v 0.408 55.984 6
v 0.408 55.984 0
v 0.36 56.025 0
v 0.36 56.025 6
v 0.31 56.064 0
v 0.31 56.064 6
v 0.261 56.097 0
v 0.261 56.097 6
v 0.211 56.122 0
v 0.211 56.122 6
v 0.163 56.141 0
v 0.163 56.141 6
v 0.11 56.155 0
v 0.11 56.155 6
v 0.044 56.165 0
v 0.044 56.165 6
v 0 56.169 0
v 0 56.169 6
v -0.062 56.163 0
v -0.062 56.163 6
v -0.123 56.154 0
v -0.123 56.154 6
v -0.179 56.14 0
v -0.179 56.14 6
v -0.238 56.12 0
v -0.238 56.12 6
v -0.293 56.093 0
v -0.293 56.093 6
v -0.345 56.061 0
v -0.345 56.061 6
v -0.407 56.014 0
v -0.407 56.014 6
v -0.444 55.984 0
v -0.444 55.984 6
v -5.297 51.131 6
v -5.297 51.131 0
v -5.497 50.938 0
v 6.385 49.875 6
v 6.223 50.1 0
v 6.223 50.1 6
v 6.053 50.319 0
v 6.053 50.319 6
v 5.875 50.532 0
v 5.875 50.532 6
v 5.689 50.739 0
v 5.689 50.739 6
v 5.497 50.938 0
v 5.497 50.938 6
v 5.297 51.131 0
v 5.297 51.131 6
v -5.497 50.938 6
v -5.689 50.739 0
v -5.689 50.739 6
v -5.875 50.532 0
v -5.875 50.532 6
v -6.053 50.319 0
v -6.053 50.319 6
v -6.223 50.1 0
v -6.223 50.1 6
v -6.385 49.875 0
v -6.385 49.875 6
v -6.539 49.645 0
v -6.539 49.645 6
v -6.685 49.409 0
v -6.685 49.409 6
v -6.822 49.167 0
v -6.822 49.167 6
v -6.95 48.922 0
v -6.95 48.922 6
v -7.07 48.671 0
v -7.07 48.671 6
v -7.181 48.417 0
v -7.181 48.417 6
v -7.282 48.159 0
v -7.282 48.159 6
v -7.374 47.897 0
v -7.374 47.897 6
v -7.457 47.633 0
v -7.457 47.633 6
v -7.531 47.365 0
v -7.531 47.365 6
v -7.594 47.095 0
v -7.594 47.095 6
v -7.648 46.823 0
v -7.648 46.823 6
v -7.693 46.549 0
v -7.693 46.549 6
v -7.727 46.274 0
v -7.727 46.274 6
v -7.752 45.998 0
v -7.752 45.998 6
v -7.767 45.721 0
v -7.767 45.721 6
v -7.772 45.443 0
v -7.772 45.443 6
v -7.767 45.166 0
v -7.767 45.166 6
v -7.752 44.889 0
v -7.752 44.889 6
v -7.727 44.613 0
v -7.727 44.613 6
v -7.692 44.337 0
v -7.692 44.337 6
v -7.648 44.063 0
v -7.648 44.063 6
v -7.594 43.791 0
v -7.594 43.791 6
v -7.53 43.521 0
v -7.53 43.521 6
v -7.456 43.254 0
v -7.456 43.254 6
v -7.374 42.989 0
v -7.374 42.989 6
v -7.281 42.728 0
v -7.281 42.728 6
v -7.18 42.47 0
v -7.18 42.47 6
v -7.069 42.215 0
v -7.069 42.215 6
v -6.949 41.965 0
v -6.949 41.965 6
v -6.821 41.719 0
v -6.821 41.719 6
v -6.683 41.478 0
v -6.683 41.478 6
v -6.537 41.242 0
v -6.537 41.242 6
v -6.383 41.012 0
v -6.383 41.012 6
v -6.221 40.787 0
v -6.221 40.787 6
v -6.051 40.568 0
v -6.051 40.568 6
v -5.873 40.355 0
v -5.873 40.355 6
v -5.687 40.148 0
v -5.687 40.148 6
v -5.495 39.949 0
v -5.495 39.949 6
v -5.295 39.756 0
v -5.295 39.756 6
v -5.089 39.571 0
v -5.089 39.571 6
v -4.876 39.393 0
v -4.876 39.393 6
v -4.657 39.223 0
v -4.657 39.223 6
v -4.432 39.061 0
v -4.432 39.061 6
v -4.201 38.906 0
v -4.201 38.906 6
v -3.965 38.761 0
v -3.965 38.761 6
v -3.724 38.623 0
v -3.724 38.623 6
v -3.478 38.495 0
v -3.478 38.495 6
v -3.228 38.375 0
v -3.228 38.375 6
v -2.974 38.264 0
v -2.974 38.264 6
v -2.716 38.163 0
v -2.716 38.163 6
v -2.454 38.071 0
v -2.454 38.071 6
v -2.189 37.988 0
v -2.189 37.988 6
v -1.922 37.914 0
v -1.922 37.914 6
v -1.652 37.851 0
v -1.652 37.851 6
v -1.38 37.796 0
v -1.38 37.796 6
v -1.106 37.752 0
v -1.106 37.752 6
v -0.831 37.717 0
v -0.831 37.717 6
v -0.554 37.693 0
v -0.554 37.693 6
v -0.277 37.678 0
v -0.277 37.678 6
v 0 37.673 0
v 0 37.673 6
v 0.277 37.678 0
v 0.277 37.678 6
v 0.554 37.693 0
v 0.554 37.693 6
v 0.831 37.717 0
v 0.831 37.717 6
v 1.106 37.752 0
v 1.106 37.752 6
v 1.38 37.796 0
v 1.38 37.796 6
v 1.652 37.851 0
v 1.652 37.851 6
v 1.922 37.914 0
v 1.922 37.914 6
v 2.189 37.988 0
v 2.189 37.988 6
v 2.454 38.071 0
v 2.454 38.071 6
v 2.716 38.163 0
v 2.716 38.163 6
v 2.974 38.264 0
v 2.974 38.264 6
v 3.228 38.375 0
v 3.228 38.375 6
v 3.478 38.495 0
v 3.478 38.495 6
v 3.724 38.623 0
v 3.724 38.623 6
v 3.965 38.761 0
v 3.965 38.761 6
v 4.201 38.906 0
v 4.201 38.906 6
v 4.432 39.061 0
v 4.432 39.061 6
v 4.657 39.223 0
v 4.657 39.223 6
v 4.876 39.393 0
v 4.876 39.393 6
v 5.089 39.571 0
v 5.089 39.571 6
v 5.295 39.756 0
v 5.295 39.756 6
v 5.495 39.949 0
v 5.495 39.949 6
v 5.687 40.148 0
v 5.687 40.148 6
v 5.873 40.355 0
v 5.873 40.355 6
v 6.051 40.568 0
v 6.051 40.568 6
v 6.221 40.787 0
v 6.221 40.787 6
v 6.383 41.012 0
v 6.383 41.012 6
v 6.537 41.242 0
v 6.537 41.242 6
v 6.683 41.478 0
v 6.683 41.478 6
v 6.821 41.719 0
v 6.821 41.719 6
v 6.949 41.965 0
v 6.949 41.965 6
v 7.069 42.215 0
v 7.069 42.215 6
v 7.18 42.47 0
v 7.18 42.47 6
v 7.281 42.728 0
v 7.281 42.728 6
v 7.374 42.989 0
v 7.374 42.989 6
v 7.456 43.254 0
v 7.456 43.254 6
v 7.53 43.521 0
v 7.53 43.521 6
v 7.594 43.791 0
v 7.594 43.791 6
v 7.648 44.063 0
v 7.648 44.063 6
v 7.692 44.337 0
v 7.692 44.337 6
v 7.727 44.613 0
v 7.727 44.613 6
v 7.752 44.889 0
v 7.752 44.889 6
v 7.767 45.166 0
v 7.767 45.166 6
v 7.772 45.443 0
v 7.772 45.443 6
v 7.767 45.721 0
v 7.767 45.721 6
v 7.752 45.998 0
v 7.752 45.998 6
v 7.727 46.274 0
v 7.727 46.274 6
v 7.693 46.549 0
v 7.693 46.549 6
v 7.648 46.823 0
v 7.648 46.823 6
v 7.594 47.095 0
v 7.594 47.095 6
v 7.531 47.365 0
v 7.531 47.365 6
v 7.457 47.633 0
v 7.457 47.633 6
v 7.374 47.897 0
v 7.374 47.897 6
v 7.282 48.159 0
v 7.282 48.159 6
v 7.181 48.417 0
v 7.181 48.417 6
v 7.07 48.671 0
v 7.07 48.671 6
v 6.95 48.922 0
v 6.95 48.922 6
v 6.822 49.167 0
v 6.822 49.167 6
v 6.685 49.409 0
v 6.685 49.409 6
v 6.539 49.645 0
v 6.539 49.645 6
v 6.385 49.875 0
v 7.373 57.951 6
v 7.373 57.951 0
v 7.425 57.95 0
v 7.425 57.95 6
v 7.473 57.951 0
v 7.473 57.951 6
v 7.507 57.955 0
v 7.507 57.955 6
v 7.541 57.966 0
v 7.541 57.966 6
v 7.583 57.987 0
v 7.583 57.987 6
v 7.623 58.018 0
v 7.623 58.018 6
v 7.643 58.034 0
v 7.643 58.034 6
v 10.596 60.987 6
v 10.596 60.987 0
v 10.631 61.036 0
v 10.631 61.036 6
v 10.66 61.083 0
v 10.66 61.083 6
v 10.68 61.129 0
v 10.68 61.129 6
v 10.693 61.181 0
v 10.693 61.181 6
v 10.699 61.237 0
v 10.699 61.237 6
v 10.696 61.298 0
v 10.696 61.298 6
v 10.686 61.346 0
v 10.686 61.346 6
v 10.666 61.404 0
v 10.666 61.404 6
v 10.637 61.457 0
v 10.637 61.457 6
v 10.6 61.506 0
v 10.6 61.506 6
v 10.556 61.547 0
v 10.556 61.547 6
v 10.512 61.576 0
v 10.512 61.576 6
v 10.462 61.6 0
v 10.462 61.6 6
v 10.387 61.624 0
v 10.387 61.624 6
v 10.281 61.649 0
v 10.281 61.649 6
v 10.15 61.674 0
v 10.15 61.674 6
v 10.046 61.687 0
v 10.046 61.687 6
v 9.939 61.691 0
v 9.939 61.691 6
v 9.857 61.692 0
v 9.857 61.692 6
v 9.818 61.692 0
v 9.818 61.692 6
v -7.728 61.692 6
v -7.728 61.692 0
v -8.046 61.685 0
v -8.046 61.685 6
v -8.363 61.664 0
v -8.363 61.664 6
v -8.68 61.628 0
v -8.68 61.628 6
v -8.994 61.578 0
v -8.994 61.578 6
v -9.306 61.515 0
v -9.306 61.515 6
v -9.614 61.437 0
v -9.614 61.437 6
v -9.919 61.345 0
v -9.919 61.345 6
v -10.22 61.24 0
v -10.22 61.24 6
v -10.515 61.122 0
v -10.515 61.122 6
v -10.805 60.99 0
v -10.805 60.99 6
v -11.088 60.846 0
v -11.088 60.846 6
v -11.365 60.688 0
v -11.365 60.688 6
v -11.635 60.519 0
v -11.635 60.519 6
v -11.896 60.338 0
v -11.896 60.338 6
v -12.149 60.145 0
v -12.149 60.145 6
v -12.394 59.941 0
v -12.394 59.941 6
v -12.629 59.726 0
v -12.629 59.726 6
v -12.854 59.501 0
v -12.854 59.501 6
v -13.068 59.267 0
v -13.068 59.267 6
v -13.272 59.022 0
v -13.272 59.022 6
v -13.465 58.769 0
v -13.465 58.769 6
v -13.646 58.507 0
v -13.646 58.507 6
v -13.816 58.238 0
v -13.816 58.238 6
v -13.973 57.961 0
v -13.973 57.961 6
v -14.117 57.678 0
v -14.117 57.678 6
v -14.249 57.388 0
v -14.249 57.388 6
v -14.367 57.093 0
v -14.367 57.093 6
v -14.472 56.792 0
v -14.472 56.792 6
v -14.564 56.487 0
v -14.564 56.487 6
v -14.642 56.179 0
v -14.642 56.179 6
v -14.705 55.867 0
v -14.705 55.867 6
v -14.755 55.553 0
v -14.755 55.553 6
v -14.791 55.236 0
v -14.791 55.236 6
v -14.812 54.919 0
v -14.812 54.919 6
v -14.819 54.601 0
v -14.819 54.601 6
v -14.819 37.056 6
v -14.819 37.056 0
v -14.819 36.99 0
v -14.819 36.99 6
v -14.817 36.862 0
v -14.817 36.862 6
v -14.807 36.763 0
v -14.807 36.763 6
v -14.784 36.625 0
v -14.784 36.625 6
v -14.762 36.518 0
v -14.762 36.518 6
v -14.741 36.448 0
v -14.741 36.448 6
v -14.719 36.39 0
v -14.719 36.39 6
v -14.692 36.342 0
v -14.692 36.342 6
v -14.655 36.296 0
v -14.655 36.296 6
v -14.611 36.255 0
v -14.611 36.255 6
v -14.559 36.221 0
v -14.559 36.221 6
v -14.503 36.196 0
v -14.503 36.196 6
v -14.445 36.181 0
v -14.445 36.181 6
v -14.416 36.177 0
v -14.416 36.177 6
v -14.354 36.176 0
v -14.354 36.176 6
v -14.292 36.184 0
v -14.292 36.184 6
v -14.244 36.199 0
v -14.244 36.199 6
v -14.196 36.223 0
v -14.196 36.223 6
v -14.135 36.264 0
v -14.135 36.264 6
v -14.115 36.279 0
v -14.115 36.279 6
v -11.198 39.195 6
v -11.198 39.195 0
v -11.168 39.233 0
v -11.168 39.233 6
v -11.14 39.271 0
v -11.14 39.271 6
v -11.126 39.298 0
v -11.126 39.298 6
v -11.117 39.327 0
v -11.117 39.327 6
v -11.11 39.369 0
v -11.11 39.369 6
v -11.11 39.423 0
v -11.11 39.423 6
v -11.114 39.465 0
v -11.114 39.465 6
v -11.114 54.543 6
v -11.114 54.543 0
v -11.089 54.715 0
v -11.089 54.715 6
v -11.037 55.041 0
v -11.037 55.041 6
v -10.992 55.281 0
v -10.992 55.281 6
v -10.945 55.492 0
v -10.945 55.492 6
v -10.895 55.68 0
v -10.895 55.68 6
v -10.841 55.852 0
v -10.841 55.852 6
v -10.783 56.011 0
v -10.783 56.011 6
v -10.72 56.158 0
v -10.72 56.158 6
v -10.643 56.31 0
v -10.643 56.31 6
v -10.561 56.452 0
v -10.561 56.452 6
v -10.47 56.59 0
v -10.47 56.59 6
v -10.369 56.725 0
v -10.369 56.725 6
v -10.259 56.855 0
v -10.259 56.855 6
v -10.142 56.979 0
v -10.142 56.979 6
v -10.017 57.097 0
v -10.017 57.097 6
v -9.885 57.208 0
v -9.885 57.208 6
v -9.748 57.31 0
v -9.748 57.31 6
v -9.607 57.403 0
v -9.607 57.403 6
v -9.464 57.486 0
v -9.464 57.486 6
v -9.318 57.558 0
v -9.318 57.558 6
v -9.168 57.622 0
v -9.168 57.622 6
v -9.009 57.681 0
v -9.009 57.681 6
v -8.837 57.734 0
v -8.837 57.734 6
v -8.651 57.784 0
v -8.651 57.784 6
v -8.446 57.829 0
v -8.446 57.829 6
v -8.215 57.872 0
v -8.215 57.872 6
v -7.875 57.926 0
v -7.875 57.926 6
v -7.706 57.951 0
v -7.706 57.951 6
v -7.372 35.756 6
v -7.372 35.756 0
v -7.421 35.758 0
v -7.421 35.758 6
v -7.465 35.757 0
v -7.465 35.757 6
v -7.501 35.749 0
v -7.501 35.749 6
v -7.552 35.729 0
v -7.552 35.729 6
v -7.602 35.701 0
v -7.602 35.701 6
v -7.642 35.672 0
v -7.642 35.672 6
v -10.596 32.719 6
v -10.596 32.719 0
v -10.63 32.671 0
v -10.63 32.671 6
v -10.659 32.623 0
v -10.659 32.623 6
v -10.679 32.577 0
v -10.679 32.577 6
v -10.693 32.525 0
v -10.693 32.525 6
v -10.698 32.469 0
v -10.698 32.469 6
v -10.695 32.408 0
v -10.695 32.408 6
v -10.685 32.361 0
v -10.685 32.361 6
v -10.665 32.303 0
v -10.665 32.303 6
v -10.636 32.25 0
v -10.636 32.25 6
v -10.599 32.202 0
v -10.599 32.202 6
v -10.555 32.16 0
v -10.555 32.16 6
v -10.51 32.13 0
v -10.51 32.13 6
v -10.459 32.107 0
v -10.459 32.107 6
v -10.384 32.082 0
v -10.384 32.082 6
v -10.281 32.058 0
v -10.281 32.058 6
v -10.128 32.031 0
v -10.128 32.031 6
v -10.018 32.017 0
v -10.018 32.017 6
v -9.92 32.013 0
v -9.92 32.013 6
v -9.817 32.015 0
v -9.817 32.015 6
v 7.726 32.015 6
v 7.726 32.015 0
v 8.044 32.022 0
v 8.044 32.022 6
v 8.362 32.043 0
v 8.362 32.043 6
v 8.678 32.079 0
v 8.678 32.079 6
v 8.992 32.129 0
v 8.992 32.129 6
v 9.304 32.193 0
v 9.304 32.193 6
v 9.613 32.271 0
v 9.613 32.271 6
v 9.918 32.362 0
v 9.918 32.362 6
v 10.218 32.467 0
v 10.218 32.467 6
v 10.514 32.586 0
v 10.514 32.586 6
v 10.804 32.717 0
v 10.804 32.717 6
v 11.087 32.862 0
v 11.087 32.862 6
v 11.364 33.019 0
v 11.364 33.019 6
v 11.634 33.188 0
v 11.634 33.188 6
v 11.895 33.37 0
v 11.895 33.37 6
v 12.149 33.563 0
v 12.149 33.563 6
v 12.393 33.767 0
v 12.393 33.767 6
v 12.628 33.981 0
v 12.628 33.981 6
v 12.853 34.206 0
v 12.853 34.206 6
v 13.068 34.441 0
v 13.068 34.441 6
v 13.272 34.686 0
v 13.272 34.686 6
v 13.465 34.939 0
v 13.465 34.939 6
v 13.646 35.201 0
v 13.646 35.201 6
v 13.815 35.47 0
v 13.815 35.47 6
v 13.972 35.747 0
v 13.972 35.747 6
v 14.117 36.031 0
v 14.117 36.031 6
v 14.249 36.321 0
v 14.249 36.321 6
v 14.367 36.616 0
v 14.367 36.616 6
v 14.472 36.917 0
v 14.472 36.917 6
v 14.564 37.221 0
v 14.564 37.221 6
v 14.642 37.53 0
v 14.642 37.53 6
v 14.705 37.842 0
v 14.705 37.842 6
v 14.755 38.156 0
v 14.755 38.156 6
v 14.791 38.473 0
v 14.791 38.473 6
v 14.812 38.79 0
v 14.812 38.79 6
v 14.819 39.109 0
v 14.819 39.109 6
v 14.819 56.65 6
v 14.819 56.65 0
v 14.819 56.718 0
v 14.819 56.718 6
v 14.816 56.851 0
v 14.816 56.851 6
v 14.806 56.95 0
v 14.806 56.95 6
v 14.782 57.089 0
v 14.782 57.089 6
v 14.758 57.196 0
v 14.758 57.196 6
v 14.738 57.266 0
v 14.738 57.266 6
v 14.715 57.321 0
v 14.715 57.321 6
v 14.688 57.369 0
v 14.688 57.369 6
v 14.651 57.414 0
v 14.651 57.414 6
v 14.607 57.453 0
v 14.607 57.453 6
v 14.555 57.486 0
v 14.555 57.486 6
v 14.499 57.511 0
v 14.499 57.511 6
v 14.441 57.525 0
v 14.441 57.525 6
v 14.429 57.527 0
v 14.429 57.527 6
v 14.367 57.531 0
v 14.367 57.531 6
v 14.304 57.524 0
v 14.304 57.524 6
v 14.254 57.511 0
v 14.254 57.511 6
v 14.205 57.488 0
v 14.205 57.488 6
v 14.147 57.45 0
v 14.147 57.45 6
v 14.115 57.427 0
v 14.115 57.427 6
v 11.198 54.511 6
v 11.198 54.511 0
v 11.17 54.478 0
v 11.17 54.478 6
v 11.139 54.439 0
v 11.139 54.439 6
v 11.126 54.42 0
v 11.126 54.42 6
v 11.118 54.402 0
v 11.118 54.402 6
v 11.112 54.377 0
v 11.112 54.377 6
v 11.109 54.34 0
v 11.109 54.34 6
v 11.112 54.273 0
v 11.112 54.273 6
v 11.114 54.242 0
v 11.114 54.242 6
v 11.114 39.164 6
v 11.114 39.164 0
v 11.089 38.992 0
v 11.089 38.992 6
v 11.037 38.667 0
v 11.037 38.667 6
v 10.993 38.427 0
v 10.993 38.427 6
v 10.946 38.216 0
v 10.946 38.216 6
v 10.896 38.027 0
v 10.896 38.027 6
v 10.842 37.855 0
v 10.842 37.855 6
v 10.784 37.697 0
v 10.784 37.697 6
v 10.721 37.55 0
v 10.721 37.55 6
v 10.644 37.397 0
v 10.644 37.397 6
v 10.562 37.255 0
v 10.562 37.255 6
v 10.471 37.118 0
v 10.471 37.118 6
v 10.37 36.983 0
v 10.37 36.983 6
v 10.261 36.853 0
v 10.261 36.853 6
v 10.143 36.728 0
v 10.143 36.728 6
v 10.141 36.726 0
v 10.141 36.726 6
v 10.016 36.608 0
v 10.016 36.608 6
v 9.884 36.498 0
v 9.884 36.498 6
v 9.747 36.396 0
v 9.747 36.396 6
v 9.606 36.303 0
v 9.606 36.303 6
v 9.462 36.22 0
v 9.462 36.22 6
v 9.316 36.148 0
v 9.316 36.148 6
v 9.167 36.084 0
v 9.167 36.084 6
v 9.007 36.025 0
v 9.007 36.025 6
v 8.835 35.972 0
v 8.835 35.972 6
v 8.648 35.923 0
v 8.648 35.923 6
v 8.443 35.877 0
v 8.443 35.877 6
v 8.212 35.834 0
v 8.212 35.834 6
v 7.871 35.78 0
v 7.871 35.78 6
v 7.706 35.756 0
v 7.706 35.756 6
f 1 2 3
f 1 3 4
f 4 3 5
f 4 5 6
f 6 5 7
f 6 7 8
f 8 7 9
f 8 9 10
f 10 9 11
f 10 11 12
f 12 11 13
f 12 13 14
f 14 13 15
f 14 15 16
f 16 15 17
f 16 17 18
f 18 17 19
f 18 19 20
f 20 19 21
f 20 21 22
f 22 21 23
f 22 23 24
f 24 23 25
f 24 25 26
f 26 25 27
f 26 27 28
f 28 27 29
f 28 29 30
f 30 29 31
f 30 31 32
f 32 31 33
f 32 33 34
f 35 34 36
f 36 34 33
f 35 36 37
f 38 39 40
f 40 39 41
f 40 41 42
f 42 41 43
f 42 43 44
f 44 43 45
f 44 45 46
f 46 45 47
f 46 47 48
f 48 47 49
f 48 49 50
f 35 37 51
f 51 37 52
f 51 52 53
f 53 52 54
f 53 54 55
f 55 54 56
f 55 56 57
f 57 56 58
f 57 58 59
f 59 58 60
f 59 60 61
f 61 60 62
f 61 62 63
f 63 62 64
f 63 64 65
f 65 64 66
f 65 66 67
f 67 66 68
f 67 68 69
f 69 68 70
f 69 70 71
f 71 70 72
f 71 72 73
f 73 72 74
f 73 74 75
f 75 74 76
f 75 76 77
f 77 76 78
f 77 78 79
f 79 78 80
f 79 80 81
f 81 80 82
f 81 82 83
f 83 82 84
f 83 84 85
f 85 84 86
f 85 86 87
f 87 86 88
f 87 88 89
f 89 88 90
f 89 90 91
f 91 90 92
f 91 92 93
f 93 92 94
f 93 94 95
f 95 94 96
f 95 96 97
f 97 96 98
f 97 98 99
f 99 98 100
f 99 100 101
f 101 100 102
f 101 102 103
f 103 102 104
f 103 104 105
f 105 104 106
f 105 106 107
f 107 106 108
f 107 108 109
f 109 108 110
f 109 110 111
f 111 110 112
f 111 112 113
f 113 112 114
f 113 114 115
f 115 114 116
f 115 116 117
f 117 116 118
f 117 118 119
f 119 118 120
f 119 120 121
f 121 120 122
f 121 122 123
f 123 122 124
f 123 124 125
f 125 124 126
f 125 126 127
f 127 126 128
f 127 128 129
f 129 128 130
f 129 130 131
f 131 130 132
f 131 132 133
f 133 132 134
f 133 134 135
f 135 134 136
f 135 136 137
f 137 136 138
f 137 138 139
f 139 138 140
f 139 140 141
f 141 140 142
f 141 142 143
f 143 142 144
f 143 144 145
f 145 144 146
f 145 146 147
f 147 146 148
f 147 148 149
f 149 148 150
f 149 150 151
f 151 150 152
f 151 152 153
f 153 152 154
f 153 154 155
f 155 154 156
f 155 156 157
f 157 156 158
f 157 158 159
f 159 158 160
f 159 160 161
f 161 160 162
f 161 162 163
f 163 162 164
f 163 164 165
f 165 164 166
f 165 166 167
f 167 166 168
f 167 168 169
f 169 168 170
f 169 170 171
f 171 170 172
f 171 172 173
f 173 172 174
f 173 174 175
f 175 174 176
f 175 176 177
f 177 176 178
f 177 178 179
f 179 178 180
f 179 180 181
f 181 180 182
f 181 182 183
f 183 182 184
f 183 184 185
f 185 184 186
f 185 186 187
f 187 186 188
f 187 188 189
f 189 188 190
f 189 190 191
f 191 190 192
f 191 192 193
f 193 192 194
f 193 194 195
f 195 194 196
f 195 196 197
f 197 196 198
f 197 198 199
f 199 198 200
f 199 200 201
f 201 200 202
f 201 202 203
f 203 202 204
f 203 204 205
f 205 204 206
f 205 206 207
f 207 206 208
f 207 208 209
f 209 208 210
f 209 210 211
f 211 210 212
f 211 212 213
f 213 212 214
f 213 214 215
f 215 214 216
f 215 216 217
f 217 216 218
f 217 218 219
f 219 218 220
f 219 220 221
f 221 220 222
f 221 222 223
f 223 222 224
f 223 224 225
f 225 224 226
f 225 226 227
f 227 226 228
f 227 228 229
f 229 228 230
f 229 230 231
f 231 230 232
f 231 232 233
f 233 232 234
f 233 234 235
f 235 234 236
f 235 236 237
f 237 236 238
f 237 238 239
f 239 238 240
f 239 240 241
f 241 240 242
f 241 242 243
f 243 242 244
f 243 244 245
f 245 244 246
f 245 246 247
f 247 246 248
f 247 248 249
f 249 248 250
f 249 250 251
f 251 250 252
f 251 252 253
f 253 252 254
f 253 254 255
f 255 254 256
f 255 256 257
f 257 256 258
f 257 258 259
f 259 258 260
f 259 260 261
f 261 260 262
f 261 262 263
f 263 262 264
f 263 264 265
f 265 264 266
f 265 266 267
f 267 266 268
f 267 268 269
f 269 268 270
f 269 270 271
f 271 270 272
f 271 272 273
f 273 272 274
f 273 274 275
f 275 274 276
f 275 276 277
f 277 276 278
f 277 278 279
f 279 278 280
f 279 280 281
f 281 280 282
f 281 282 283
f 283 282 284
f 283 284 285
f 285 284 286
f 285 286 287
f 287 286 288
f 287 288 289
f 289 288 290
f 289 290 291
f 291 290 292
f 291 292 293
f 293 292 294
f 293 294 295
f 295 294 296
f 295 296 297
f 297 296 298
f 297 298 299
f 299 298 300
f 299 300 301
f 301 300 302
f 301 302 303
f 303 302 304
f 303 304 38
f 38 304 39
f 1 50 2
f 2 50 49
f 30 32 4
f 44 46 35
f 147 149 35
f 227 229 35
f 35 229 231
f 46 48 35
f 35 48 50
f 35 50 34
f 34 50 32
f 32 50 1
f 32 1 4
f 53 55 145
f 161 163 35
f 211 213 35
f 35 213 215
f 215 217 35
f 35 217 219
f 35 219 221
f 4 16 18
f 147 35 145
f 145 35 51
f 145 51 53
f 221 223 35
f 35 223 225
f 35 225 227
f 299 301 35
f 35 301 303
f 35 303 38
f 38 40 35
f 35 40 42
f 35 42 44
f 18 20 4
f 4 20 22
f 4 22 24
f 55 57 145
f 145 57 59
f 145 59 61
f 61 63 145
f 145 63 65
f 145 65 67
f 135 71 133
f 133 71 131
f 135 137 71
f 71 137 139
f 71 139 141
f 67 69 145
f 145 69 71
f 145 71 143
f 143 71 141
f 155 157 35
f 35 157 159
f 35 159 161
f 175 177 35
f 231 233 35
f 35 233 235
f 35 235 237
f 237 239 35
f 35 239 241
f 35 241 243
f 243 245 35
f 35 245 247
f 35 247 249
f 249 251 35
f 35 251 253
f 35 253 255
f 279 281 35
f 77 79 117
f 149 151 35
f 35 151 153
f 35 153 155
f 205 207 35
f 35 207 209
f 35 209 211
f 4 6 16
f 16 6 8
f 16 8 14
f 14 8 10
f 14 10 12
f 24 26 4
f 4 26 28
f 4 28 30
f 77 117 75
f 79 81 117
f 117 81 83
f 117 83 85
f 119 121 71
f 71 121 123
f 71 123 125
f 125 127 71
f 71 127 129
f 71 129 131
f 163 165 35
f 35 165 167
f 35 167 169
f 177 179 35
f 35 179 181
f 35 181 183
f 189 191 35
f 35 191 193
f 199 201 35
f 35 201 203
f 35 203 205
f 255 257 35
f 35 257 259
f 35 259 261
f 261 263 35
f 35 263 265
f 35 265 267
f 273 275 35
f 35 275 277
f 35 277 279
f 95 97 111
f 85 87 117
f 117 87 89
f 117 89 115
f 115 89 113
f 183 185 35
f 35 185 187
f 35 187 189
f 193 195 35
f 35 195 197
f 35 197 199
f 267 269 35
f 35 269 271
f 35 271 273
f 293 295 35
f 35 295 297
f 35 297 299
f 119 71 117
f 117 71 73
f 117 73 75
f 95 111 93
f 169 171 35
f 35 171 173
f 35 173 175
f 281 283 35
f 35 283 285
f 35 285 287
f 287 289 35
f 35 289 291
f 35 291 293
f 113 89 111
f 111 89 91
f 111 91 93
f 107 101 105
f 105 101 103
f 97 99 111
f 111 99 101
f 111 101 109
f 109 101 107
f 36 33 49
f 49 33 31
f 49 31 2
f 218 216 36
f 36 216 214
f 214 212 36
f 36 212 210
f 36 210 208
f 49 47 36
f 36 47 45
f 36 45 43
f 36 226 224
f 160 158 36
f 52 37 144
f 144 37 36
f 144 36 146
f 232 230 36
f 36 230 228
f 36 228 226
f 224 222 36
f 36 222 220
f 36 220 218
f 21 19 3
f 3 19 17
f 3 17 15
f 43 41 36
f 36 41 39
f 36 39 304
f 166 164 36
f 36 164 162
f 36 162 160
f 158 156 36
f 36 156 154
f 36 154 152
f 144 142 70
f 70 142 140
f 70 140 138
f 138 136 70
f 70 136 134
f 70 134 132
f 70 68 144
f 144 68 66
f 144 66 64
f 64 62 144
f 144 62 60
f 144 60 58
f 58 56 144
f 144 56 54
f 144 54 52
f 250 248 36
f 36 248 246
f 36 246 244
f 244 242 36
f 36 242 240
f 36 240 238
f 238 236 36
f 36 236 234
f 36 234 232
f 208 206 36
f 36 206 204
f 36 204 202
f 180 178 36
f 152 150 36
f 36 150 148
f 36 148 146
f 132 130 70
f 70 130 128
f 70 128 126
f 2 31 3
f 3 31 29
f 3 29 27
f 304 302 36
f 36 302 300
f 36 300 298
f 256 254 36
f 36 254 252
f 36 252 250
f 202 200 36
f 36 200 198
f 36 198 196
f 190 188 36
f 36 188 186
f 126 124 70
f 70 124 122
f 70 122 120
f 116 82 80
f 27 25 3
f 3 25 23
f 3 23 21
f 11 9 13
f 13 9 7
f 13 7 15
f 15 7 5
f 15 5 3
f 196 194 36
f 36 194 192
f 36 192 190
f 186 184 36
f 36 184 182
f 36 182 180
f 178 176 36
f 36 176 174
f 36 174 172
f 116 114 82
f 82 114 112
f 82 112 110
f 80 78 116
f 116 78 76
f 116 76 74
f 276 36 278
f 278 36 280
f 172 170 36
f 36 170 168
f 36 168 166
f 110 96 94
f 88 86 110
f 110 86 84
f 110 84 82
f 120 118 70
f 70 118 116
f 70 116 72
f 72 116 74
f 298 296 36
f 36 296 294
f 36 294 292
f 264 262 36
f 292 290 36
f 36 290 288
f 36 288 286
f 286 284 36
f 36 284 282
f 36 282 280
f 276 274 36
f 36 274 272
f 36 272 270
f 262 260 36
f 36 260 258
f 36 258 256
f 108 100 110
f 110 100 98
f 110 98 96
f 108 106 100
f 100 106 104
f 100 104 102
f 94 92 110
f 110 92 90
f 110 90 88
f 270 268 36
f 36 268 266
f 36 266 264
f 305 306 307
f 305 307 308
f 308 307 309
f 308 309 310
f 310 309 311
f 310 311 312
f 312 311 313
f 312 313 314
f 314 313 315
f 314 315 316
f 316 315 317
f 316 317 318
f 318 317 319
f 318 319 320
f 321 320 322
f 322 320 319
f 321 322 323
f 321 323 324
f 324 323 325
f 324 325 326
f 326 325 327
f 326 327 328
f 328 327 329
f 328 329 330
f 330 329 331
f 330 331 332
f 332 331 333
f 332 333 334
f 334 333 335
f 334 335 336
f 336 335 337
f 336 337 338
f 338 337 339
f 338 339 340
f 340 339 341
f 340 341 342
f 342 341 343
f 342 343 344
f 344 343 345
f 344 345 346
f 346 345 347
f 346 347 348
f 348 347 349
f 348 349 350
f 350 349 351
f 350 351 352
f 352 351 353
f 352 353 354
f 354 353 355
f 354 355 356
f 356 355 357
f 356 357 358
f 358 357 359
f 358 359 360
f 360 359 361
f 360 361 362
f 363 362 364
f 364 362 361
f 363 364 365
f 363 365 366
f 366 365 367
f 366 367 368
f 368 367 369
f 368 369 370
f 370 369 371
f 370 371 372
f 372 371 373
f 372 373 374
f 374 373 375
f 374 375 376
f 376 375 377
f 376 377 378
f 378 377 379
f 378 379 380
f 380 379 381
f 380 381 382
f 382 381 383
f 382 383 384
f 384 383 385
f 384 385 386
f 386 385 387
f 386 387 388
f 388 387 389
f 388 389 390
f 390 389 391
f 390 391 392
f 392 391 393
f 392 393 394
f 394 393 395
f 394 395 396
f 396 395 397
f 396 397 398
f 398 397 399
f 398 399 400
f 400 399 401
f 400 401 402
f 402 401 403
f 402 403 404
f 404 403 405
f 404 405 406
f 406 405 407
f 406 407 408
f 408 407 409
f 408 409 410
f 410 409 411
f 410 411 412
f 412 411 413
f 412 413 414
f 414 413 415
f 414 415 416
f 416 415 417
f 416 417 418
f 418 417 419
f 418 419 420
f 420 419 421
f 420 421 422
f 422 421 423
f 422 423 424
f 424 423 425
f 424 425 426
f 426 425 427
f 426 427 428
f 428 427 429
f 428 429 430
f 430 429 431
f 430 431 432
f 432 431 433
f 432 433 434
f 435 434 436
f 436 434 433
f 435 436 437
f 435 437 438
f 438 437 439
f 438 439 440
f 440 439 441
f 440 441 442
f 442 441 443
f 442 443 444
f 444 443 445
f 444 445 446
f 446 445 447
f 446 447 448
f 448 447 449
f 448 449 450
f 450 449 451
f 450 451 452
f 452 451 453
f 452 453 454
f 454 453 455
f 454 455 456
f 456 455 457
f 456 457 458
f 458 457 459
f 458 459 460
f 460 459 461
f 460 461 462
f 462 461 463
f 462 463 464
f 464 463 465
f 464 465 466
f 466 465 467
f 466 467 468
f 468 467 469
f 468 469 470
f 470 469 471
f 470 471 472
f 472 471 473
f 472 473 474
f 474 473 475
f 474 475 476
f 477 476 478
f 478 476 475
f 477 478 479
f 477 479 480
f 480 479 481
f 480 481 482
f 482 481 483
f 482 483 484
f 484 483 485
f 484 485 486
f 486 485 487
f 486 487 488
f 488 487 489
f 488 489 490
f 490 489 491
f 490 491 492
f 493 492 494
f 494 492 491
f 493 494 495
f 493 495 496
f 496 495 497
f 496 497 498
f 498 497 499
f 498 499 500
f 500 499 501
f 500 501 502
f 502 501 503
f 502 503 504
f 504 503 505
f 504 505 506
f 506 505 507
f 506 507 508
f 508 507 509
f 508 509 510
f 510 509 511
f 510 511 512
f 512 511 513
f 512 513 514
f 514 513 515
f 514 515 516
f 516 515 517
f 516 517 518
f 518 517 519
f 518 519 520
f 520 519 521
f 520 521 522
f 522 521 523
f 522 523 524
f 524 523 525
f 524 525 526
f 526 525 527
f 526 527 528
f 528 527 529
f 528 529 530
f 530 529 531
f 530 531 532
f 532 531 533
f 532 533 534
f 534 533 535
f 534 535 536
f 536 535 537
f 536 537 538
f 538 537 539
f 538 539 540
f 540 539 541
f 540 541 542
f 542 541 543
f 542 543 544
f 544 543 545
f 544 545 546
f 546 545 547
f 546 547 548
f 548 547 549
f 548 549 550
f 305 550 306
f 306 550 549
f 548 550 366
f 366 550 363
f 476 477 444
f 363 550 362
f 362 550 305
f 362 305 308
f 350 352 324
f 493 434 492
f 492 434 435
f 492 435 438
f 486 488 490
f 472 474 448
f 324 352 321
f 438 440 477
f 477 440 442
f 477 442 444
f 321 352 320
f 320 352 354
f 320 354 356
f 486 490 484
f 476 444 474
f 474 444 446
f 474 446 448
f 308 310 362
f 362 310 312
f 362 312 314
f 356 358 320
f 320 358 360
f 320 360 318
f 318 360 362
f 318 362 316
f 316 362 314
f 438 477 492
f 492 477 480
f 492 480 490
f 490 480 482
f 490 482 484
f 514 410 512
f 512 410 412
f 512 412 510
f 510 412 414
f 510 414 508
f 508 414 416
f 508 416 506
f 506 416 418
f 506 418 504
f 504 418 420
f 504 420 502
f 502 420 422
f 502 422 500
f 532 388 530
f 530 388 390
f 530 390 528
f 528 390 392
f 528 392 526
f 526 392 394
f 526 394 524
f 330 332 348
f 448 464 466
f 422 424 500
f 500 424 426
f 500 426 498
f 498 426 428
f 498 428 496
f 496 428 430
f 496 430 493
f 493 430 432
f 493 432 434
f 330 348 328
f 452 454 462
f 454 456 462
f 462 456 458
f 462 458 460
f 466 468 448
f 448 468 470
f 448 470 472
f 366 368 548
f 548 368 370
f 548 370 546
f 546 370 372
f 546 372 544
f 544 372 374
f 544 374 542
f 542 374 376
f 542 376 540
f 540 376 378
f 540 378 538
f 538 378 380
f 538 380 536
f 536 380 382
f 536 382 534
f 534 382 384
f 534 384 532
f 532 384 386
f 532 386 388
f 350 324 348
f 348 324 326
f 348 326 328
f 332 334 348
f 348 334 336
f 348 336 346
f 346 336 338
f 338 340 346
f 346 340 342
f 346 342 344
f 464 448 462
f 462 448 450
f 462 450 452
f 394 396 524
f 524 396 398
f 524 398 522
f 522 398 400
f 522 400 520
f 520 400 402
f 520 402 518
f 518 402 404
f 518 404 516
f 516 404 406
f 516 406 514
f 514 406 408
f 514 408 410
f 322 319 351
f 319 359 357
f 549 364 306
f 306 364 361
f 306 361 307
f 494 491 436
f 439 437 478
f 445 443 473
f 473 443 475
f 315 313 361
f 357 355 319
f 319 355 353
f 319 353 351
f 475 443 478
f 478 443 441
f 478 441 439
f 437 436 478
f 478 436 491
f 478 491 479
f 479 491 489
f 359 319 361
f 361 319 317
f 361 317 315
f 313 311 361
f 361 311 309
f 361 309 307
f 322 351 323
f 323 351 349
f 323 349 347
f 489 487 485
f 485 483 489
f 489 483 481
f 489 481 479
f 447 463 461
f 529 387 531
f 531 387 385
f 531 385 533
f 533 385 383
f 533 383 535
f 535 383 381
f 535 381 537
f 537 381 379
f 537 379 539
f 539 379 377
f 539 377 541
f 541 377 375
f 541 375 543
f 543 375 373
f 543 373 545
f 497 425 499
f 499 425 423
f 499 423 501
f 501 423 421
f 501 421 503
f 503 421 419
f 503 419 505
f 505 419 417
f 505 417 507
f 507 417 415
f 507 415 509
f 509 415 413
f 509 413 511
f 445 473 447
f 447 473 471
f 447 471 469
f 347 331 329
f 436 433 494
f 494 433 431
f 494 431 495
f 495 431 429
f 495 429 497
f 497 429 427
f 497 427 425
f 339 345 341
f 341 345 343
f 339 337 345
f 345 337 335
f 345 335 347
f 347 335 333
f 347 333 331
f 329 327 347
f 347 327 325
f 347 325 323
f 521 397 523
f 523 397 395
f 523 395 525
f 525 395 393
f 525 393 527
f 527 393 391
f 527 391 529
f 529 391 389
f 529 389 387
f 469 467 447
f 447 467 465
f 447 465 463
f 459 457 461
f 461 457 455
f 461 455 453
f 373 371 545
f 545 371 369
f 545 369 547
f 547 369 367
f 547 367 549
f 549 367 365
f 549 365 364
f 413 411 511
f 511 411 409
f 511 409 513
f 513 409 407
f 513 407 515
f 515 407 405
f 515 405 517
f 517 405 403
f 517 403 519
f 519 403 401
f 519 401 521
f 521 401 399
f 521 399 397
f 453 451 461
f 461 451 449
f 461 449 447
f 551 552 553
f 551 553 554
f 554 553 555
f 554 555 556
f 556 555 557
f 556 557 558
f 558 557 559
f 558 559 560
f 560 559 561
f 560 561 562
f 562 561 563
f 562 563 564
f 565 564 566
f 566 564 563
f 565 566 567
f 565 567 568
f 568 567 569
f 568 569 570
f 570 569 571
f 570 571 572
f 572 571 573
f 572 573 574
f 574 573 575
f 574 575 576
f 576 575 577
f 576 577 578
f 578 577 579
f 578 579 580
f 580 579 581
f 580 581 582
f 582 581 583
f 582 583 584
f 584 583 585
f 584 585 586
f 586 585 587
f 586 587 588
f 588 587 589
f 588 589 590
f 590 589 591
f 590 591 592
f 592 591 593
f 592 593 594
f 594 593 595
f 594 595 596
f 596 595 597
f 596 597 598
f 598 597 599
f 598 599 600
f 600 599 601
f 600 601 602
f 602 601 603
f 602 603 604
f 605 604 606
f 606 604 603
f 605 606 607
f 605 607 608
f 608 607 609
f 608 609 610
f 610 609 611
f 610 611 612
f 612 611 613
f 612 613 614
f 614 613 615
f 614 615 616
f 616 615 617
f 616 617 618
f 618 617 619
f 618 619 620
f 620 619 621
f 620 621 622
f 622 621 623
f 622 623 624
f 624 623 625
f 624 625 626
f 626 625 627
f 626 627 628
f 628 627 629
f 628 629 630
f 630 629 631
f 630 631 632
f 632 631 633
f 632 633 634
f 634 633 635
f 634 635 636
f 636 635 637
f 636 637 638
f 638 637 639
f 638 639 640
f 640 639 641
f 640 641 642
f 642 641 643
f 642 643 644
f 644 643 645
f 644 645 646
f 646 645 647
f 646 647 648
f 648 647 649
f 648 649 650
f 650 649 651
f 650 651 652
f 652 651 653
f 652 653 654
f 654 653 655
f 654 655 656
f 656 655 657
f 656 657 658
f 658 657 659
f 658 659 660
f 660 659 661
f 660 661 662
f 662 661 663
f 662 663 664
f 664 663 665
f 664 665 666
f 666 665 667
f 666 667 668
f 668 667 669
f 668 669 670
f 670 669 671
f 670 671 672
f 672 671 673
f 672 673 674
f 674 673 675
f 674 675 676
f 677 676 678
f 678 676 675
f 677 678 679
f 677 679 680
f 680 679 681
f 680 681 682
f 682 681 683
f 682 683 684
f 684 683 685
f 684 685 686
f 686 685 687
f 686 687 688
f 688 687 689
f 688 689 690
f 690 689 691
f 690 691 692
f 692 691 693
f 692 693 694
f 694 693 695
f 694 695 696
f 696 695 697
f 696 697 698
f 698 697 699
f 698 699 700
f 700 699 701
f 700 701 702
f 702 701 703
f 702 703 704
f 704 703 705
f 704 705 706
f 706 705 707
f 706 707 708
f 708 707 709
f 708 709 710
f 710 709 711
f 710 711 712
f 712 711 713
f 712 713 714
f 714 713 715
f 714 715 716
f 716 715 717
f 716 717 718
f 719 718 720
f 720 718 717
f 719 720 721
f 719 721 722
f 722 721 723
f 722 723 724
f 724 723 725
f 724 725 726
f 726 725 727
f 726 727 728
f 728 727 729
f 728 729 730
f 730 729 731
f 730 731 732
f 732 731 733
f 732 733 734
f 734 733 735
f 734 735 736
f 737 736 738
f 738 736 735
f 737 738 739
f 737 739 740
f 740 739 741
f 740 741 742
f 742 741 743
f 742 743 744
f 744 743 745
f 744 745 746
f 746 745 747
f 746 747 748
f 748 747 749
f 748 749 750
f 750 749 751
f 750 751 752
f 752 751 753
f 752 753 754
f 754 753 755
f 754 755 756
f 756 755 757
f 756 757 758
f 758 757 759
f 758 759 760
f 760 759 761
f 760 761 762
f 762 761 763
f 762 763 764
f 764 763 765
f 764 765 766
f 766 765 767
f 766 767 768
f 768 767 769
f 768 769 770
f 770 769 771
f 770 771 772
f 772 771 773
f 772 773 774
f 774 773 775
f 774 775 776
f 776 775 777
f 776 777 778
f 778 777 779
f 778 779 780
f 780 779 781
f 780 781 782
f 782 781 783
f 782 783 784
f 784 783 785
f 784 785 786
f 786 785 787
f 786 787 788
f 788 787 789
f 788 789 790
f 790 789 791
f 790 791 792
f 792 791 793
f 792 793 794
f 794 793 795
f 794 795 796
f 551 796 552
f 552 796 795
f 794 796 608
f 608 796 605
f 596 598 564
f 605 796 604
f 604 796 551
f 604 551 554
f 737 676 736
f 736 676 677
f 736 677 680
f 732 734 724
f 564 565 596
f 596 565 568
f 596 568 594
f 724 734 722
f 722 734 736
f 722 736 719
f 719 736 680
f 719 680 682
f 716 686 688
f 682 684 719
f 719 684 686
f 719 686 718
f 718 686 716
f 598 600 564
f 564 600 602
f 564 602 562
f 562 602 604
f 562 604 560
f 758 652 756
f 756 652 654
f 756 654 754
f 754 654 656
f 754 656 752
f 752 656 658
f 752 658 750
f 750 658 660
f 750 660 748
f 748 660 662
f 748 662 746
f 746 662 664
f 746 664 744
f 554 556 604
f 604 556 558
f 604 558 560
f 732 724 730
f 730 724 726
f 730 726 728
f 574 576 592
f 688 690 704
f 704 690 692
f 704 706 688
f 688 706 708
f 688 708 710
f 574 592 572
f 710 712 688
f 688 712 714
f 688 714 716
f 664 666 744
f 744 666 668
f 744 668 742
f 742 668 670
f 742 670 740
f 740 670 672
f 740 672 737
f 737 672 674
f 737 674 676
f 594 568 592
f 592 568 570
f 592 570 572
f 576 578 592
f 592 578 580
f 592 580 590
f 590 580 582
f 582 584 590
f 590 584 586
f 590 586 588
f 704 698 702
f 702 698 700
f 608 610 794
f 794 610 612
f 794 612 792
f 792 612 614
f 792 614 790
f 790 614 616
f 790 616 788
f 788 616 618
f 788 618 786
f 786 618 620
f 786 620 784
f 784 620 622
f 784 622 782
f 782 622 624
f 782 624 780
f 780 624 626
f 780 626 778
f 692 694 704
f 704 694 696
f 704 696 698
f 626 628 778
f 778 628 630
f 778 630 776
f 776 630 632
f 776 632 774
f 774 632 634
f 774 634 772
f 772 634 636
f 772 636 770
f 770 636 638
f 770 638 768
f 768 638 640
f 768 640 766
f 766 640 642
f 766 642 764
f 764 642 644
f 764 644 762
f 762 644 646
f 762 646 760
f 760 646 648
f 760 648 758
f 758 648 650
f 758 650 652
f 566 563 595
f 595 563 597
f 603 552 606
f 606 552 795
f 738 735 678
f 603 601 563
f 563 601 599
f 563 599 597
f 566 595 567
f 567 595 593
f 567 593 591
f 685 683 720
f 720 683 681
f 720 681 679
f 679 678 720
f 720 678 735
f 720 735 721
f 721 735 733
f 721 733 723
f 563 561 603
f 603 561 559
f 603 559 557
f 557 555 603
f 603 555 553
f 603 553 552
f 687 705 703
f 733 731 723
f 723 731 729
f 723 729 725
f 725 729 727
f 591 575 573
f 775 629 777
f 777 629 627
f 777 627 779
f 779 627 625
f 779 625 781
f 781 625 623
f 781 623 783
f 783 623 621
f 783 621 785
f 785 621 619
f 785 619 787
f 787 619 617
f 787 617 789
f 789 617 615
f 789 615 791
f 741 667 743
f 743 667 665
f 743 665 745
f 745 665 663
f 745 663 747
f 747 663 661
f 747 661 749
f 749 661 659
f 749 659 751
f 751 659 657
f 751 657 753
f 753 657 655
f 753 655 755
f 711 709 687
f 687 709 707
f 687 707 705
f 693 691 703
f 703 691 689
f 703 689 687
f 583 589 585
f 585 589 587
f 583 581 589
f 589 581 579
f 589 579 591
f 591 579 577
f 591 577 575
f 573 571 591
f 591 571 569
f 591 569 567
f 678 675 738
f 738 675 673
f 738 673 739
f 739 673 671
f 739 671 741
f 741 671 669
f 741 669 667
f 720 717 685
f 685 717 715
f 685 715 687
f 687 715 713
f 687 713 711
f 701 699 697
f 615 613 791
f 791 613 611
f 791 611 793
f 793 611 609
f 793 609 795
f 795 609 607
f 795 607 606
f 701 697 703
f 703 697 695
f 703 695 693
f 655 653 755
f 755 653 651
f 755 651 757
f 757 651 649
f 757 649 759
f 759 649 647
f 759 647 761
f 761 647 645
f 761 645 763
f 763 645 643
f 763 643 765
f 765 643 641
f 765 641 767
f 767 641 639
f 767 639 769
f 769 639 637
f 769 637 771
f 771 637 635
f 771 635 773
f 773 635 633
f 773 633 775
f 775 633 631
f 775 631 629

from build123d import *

# Parameters (mm, degrees)
BOSS_EXTRUDE1_DEPTH   = 6
BOSS_EXTRUDE1_2_DEPTH = 6
BOSS_EXTRUDE1_3_DEPTH = 6


with BuildPart() as part:
    # Sketch2 → Boss-Extrude1 (new body)
    with BuildSketch(Plane.XY):
        with BuildLine():
            Line((-0.443808512, 55.984274583), (-5.297244805, 51.131120289))
            ThreePointArc((-5.297244805, 51.131120289), (0, 37.672973009), (5.297244805, 51.131120289))
            Line((5.297244805, 51.131120289), (0.407829784, 55.984274583))
            add(Edge.make_bspline(
                [(0.407829784, 55.984274583), (0.368694639, 56.018150383), (0.291347372, 56.085103007), (0.15161935, 56.154367662), (0.050542727, 56.164189345), (5.56e-05, 56.169095213)],
                knots=[0, 0, 0, 0, 0.338885039, 0.6697773, 1, 1, 1, 1], degree=3))
            add(Edge.make_bspline(
                [(5.56e-05, 56.169095213), (-0.05257804, 56.164008855), (-0.160972548, 56.153533933), (-0.315204963, 56.089735455), (-0.401165502, 56.019243828), (-0.443808512, 55.984274583)],
                knots=[0, 0, 0, 0, 0.322338023, 0.663827768, 1, 1, 1, 1], degree=3))
        make_face()
    extrude(amount=BOSS_EXTRUDE1_DEPTH)


with BuildPart() as body_2:
    # Sketch2 → Boss-Extrude1 2 (new body)
    with BuildSketch(Plane.XY):
        with BuildLine():
            Line((-7.706246934, 57.951214685), (7.372918204, 57.951214685))
            add(Edge.make_bspline(
                [(7.372918204, 57.951214685), (7.395110156, 57.950651705), (7.438614819, 57.949548051), (7.504225261, 57.950625459), (7.555781235, 57.971549168), (7.594142025, 57.993251928), (7.6196821, 58.014176428), (7.635431909, 58.027775879), (7.643125702, 58.03441922)],
                knots=[0, 0, 0, 0, 0.227492727, 0.445972237, 0.663373124, 0.787115425, 0.896005733, 1, 1, 1, 1], degree=3))
            Line((7.643125702, 58.03441922), (10.59644992, 60.987402087))
            add(Edge.make_bspline(
                [(10.59644992, 60.987402087), (10.625456983, 61.026663762), (10.683538077, 61.105277754), (10.707695299, 61.253447318), (10.680583073, 61.389397251), (10.6133758, 61.49896423), (10.522988745, 61.577950635), (10.390059362, 61.627458402), (10.229954222, 61.659898091), (10.044878415, 61.693381506), (9.914529471, 61.690948887), (9.843214909, 61.692533466), (9.830847981, 61.693169337), (9.822614549, 61.692592712), (9.818490032, 61.692303853)],
                knots=[0, 0, 0, 0, 0.104345134, 0.208931166, 0.313565445, 0.39799532, 0.482811187, 0.567894079, 0.701186565, 0.836715425, 0.973246641, 0.982162759, 0.991064478, 1, 1, 1, 1], degree=3))
            Line((9.818490032, 61.692303853), (-7.727796486, 61.692303853))
            ThreePointArc((-7.727796486, 61.692303853), (-12.742309897, 59.615224389), (-14.819389361, 54.600710977))
            Line((-14.819389361, 54.600710977), (-14.819389361, 37.055657069))
            add(Edge.make_bspline(
                [(-14.819389361, 37.055657069), (-14.819683443, 37.05167552), (-14.82026435, 37.043810673), (-14.819639427, 37.031949151), (-14.818072735, 36.960744177), (-14.821111299, 36.830160331), (-14.78732224, 36.644666005), (-14.757529562, 36.48379651), (-14.706020153, 36.351730889), (-14.627362714, 36.261445855), (-14.518175826, 36.193440108), (-14.381934797, 36.166179863), (-14.233405716, 36.190514922), (-14.154618978, 36.249229011), (-14.11521277, 36.278595623)],
                knots=[0, 0, 0, 0, 0.008621864, 0.017030969, 0.025643238, 0.162638148, 0.298245388, 0.431901383, 0.516391776, 0.601007159, 0.685956809, 0.790142009, 0.895036806, 1, 1, 1, 1], degree=3))
            Line((-14.11521277, 36.278595623), (-11.198029632, 39.195441586))
            add(Edge.make_bspline(
                [(-11.198029632, 39.195441586), (-11.190093681, 39.205582441), (-11.174520458, 39.225482487), (-11.15027016, 39.255165521), (-11.125422855, 39.293499099), (-11.110689079, 39.344394677), (-11.107300881, 39.404327233), (-11.111709764, 39.443939019), (-11.114003119, 39.464543755)],
                knots=[0, 0, 0, 0, 0.131285455, 0.257629811, 0.390972346, 0.594165008, 0.788898108, 1, 1, 1, 1], degree=3))
            Line((-11.114003119, 39.464543755), (-11.114003119, 54.542930501))
            add(Edge.make_bspline(
                [(-11.114003119, 54.542930501), (-11.025772384, 55.146864843), (-10.853333144, 56.327201592), (-9.491346414, 57.690256382), (-8.310575854, 57.862869665), (-7.706246934, 57.951214685)],
                knots=[0, 0, 0, 0, 0.338409749, 0.6613922, 1, 1, 1, 1], degree=3))
        make_face()
    extrude(amount=BOSS_EXTRUDE1_2_DEPTH)


with BuildPart() as body_3:
    # Sketch2 → Boss-Extrude1 3 (new body)
    with BuildSketch(Plane.XY):
        with BuildLine():
            Line((7.706108935, 35.755985581), (-7.3716965, 35.755985581))
            add(Edge.make_bspline(
                [(-7.3716965, 35.755985581), (-7.390791848, 35.757243364), (-7.42588813, 35.759555105), (-7.480435634, 35.756767712), (-7.526608025, 35.741130321), (-7.568839822, 35.721664455), (-7.605836087, 35.699368029), (-7.62980257, 35.681485074), (-7.642317826, 35.672146626)],
                knots=[0, 0, 0, 0, 0.196745559, 0.361608386, 0.557261599, 0.692766378, 0.839563136, 1, 1, 1, 1], degree=3))
            Line((-7.642317826, 35.672146626), (-10.595729808, 32.719076005))
            add(Edge.make_bspline(
                [(-10.595729808, 32.719076005), (-10.624701104, 32.679767795), (-10.682693852, 32.601083323), (-10.706716869, 32.452917901), (-10.679538616, 32.31693156), (-10.611911158, 32.207498808), (-10.521503266, 32.1288385), (-10.389015109, 32.078886041), (-10.228910201, 32.046334857), (-10.043857278, 32.01606427), (-9.91330711, 32.010562917), (-9.841970676, 32.015780753), (-9.829509786, 32.015147579), (-9.8212444, 32.014980072), (-9.817116366, 32.014896413)],
                knots=[0, 0, 0, 0, 0.104384754, 0.208950226, 0.313569176, 0.398093487, 0.483012464, 0.567612364, 0.700915154, 0.836484685, 0.973043492, 0.982112009, 0.991066088, 1, 1, 1, 1], degree=3))
            Line((-9.817116366, 32.014896413), (7.725721759, 32.014896413))
            ThreePointArc((7.725721759, 32.014896413), (12.741702224, 34.09258355), (14.819389361, 39.108564015))
            Line((14.819389361, 39.108564015), (14.819389361, 56.649953994))
            add(Edge.make_bspline(
                [(14.819389361, 56.649953994), (14.819681538, 56.654088243), (14.820267188, 56.662375085), (14.81963947, 56.674871643), (14.818155381, 56.746304415), (14.820697155, 56.876724498), (14.787319465, 57.061771486), (14.755486312, 57.221842244), (14.705479777, 57.35434308), (14.62689049, 57.444759462), (14.517454165, 57.512357762), (14.3814295, 57.53955279), (14.232961651, 57.515207684), (14.154478031, 57.456521872), (14.115208769, 57.42715844)],
                knots=[0, 0, 0, 0, 0.008953482, 0.017946692, 0.027021307, 0.163490993, 0.298949058, 0.432165007, 0.516776033, 0.601601228, 0.686034701, 0.790672378, 0.895262972, 1, 1, 1, 1], degree=3))
            Line((14.115208769, 57.42715844), (11.198386433, 54.510673236))
            add(Edge.make_bspline(
                [(11.198386433, 54.510673236), (11.189737643, 54.50058532), (11.172712209, 54.480726918), (11.146988546, 54.45027591), (11.11992052, 54.414228702), (11.108014065, 54.36337785), (11.109113984, 54.30464265), (11.112305892, 54.263909284), (11.114003119, 54.242250215)],
                knots=[0, 0, 0, 0, 0.134581529, 0.264928249, 0.404990742, 0.58604785, 0.779890073, 1, 1, 1, 1], degree=3))
            Line((11.114003119, 54.242250215), (11.114003119, 39.164130765))
            add(Edge.make_bspline(
                [(11.114003119, 39.164130765), (11.026069958, 38.560039142), (10.85421565, 37.379418015), (9.491383713, 36.016723245), (8.31051879, 35.844259059), (7.706108935, 35.755985581)],
                knots=[0, 0, 0, 0, 0.33840601, 0.661371999, 1, 1, 1, 1], degree=3))
        make_face()
    extrude(amount=BOSS_EXTRUDE1_3_DEPTH)


solid = Compound([part.part, body_2.part, body_3.part])
